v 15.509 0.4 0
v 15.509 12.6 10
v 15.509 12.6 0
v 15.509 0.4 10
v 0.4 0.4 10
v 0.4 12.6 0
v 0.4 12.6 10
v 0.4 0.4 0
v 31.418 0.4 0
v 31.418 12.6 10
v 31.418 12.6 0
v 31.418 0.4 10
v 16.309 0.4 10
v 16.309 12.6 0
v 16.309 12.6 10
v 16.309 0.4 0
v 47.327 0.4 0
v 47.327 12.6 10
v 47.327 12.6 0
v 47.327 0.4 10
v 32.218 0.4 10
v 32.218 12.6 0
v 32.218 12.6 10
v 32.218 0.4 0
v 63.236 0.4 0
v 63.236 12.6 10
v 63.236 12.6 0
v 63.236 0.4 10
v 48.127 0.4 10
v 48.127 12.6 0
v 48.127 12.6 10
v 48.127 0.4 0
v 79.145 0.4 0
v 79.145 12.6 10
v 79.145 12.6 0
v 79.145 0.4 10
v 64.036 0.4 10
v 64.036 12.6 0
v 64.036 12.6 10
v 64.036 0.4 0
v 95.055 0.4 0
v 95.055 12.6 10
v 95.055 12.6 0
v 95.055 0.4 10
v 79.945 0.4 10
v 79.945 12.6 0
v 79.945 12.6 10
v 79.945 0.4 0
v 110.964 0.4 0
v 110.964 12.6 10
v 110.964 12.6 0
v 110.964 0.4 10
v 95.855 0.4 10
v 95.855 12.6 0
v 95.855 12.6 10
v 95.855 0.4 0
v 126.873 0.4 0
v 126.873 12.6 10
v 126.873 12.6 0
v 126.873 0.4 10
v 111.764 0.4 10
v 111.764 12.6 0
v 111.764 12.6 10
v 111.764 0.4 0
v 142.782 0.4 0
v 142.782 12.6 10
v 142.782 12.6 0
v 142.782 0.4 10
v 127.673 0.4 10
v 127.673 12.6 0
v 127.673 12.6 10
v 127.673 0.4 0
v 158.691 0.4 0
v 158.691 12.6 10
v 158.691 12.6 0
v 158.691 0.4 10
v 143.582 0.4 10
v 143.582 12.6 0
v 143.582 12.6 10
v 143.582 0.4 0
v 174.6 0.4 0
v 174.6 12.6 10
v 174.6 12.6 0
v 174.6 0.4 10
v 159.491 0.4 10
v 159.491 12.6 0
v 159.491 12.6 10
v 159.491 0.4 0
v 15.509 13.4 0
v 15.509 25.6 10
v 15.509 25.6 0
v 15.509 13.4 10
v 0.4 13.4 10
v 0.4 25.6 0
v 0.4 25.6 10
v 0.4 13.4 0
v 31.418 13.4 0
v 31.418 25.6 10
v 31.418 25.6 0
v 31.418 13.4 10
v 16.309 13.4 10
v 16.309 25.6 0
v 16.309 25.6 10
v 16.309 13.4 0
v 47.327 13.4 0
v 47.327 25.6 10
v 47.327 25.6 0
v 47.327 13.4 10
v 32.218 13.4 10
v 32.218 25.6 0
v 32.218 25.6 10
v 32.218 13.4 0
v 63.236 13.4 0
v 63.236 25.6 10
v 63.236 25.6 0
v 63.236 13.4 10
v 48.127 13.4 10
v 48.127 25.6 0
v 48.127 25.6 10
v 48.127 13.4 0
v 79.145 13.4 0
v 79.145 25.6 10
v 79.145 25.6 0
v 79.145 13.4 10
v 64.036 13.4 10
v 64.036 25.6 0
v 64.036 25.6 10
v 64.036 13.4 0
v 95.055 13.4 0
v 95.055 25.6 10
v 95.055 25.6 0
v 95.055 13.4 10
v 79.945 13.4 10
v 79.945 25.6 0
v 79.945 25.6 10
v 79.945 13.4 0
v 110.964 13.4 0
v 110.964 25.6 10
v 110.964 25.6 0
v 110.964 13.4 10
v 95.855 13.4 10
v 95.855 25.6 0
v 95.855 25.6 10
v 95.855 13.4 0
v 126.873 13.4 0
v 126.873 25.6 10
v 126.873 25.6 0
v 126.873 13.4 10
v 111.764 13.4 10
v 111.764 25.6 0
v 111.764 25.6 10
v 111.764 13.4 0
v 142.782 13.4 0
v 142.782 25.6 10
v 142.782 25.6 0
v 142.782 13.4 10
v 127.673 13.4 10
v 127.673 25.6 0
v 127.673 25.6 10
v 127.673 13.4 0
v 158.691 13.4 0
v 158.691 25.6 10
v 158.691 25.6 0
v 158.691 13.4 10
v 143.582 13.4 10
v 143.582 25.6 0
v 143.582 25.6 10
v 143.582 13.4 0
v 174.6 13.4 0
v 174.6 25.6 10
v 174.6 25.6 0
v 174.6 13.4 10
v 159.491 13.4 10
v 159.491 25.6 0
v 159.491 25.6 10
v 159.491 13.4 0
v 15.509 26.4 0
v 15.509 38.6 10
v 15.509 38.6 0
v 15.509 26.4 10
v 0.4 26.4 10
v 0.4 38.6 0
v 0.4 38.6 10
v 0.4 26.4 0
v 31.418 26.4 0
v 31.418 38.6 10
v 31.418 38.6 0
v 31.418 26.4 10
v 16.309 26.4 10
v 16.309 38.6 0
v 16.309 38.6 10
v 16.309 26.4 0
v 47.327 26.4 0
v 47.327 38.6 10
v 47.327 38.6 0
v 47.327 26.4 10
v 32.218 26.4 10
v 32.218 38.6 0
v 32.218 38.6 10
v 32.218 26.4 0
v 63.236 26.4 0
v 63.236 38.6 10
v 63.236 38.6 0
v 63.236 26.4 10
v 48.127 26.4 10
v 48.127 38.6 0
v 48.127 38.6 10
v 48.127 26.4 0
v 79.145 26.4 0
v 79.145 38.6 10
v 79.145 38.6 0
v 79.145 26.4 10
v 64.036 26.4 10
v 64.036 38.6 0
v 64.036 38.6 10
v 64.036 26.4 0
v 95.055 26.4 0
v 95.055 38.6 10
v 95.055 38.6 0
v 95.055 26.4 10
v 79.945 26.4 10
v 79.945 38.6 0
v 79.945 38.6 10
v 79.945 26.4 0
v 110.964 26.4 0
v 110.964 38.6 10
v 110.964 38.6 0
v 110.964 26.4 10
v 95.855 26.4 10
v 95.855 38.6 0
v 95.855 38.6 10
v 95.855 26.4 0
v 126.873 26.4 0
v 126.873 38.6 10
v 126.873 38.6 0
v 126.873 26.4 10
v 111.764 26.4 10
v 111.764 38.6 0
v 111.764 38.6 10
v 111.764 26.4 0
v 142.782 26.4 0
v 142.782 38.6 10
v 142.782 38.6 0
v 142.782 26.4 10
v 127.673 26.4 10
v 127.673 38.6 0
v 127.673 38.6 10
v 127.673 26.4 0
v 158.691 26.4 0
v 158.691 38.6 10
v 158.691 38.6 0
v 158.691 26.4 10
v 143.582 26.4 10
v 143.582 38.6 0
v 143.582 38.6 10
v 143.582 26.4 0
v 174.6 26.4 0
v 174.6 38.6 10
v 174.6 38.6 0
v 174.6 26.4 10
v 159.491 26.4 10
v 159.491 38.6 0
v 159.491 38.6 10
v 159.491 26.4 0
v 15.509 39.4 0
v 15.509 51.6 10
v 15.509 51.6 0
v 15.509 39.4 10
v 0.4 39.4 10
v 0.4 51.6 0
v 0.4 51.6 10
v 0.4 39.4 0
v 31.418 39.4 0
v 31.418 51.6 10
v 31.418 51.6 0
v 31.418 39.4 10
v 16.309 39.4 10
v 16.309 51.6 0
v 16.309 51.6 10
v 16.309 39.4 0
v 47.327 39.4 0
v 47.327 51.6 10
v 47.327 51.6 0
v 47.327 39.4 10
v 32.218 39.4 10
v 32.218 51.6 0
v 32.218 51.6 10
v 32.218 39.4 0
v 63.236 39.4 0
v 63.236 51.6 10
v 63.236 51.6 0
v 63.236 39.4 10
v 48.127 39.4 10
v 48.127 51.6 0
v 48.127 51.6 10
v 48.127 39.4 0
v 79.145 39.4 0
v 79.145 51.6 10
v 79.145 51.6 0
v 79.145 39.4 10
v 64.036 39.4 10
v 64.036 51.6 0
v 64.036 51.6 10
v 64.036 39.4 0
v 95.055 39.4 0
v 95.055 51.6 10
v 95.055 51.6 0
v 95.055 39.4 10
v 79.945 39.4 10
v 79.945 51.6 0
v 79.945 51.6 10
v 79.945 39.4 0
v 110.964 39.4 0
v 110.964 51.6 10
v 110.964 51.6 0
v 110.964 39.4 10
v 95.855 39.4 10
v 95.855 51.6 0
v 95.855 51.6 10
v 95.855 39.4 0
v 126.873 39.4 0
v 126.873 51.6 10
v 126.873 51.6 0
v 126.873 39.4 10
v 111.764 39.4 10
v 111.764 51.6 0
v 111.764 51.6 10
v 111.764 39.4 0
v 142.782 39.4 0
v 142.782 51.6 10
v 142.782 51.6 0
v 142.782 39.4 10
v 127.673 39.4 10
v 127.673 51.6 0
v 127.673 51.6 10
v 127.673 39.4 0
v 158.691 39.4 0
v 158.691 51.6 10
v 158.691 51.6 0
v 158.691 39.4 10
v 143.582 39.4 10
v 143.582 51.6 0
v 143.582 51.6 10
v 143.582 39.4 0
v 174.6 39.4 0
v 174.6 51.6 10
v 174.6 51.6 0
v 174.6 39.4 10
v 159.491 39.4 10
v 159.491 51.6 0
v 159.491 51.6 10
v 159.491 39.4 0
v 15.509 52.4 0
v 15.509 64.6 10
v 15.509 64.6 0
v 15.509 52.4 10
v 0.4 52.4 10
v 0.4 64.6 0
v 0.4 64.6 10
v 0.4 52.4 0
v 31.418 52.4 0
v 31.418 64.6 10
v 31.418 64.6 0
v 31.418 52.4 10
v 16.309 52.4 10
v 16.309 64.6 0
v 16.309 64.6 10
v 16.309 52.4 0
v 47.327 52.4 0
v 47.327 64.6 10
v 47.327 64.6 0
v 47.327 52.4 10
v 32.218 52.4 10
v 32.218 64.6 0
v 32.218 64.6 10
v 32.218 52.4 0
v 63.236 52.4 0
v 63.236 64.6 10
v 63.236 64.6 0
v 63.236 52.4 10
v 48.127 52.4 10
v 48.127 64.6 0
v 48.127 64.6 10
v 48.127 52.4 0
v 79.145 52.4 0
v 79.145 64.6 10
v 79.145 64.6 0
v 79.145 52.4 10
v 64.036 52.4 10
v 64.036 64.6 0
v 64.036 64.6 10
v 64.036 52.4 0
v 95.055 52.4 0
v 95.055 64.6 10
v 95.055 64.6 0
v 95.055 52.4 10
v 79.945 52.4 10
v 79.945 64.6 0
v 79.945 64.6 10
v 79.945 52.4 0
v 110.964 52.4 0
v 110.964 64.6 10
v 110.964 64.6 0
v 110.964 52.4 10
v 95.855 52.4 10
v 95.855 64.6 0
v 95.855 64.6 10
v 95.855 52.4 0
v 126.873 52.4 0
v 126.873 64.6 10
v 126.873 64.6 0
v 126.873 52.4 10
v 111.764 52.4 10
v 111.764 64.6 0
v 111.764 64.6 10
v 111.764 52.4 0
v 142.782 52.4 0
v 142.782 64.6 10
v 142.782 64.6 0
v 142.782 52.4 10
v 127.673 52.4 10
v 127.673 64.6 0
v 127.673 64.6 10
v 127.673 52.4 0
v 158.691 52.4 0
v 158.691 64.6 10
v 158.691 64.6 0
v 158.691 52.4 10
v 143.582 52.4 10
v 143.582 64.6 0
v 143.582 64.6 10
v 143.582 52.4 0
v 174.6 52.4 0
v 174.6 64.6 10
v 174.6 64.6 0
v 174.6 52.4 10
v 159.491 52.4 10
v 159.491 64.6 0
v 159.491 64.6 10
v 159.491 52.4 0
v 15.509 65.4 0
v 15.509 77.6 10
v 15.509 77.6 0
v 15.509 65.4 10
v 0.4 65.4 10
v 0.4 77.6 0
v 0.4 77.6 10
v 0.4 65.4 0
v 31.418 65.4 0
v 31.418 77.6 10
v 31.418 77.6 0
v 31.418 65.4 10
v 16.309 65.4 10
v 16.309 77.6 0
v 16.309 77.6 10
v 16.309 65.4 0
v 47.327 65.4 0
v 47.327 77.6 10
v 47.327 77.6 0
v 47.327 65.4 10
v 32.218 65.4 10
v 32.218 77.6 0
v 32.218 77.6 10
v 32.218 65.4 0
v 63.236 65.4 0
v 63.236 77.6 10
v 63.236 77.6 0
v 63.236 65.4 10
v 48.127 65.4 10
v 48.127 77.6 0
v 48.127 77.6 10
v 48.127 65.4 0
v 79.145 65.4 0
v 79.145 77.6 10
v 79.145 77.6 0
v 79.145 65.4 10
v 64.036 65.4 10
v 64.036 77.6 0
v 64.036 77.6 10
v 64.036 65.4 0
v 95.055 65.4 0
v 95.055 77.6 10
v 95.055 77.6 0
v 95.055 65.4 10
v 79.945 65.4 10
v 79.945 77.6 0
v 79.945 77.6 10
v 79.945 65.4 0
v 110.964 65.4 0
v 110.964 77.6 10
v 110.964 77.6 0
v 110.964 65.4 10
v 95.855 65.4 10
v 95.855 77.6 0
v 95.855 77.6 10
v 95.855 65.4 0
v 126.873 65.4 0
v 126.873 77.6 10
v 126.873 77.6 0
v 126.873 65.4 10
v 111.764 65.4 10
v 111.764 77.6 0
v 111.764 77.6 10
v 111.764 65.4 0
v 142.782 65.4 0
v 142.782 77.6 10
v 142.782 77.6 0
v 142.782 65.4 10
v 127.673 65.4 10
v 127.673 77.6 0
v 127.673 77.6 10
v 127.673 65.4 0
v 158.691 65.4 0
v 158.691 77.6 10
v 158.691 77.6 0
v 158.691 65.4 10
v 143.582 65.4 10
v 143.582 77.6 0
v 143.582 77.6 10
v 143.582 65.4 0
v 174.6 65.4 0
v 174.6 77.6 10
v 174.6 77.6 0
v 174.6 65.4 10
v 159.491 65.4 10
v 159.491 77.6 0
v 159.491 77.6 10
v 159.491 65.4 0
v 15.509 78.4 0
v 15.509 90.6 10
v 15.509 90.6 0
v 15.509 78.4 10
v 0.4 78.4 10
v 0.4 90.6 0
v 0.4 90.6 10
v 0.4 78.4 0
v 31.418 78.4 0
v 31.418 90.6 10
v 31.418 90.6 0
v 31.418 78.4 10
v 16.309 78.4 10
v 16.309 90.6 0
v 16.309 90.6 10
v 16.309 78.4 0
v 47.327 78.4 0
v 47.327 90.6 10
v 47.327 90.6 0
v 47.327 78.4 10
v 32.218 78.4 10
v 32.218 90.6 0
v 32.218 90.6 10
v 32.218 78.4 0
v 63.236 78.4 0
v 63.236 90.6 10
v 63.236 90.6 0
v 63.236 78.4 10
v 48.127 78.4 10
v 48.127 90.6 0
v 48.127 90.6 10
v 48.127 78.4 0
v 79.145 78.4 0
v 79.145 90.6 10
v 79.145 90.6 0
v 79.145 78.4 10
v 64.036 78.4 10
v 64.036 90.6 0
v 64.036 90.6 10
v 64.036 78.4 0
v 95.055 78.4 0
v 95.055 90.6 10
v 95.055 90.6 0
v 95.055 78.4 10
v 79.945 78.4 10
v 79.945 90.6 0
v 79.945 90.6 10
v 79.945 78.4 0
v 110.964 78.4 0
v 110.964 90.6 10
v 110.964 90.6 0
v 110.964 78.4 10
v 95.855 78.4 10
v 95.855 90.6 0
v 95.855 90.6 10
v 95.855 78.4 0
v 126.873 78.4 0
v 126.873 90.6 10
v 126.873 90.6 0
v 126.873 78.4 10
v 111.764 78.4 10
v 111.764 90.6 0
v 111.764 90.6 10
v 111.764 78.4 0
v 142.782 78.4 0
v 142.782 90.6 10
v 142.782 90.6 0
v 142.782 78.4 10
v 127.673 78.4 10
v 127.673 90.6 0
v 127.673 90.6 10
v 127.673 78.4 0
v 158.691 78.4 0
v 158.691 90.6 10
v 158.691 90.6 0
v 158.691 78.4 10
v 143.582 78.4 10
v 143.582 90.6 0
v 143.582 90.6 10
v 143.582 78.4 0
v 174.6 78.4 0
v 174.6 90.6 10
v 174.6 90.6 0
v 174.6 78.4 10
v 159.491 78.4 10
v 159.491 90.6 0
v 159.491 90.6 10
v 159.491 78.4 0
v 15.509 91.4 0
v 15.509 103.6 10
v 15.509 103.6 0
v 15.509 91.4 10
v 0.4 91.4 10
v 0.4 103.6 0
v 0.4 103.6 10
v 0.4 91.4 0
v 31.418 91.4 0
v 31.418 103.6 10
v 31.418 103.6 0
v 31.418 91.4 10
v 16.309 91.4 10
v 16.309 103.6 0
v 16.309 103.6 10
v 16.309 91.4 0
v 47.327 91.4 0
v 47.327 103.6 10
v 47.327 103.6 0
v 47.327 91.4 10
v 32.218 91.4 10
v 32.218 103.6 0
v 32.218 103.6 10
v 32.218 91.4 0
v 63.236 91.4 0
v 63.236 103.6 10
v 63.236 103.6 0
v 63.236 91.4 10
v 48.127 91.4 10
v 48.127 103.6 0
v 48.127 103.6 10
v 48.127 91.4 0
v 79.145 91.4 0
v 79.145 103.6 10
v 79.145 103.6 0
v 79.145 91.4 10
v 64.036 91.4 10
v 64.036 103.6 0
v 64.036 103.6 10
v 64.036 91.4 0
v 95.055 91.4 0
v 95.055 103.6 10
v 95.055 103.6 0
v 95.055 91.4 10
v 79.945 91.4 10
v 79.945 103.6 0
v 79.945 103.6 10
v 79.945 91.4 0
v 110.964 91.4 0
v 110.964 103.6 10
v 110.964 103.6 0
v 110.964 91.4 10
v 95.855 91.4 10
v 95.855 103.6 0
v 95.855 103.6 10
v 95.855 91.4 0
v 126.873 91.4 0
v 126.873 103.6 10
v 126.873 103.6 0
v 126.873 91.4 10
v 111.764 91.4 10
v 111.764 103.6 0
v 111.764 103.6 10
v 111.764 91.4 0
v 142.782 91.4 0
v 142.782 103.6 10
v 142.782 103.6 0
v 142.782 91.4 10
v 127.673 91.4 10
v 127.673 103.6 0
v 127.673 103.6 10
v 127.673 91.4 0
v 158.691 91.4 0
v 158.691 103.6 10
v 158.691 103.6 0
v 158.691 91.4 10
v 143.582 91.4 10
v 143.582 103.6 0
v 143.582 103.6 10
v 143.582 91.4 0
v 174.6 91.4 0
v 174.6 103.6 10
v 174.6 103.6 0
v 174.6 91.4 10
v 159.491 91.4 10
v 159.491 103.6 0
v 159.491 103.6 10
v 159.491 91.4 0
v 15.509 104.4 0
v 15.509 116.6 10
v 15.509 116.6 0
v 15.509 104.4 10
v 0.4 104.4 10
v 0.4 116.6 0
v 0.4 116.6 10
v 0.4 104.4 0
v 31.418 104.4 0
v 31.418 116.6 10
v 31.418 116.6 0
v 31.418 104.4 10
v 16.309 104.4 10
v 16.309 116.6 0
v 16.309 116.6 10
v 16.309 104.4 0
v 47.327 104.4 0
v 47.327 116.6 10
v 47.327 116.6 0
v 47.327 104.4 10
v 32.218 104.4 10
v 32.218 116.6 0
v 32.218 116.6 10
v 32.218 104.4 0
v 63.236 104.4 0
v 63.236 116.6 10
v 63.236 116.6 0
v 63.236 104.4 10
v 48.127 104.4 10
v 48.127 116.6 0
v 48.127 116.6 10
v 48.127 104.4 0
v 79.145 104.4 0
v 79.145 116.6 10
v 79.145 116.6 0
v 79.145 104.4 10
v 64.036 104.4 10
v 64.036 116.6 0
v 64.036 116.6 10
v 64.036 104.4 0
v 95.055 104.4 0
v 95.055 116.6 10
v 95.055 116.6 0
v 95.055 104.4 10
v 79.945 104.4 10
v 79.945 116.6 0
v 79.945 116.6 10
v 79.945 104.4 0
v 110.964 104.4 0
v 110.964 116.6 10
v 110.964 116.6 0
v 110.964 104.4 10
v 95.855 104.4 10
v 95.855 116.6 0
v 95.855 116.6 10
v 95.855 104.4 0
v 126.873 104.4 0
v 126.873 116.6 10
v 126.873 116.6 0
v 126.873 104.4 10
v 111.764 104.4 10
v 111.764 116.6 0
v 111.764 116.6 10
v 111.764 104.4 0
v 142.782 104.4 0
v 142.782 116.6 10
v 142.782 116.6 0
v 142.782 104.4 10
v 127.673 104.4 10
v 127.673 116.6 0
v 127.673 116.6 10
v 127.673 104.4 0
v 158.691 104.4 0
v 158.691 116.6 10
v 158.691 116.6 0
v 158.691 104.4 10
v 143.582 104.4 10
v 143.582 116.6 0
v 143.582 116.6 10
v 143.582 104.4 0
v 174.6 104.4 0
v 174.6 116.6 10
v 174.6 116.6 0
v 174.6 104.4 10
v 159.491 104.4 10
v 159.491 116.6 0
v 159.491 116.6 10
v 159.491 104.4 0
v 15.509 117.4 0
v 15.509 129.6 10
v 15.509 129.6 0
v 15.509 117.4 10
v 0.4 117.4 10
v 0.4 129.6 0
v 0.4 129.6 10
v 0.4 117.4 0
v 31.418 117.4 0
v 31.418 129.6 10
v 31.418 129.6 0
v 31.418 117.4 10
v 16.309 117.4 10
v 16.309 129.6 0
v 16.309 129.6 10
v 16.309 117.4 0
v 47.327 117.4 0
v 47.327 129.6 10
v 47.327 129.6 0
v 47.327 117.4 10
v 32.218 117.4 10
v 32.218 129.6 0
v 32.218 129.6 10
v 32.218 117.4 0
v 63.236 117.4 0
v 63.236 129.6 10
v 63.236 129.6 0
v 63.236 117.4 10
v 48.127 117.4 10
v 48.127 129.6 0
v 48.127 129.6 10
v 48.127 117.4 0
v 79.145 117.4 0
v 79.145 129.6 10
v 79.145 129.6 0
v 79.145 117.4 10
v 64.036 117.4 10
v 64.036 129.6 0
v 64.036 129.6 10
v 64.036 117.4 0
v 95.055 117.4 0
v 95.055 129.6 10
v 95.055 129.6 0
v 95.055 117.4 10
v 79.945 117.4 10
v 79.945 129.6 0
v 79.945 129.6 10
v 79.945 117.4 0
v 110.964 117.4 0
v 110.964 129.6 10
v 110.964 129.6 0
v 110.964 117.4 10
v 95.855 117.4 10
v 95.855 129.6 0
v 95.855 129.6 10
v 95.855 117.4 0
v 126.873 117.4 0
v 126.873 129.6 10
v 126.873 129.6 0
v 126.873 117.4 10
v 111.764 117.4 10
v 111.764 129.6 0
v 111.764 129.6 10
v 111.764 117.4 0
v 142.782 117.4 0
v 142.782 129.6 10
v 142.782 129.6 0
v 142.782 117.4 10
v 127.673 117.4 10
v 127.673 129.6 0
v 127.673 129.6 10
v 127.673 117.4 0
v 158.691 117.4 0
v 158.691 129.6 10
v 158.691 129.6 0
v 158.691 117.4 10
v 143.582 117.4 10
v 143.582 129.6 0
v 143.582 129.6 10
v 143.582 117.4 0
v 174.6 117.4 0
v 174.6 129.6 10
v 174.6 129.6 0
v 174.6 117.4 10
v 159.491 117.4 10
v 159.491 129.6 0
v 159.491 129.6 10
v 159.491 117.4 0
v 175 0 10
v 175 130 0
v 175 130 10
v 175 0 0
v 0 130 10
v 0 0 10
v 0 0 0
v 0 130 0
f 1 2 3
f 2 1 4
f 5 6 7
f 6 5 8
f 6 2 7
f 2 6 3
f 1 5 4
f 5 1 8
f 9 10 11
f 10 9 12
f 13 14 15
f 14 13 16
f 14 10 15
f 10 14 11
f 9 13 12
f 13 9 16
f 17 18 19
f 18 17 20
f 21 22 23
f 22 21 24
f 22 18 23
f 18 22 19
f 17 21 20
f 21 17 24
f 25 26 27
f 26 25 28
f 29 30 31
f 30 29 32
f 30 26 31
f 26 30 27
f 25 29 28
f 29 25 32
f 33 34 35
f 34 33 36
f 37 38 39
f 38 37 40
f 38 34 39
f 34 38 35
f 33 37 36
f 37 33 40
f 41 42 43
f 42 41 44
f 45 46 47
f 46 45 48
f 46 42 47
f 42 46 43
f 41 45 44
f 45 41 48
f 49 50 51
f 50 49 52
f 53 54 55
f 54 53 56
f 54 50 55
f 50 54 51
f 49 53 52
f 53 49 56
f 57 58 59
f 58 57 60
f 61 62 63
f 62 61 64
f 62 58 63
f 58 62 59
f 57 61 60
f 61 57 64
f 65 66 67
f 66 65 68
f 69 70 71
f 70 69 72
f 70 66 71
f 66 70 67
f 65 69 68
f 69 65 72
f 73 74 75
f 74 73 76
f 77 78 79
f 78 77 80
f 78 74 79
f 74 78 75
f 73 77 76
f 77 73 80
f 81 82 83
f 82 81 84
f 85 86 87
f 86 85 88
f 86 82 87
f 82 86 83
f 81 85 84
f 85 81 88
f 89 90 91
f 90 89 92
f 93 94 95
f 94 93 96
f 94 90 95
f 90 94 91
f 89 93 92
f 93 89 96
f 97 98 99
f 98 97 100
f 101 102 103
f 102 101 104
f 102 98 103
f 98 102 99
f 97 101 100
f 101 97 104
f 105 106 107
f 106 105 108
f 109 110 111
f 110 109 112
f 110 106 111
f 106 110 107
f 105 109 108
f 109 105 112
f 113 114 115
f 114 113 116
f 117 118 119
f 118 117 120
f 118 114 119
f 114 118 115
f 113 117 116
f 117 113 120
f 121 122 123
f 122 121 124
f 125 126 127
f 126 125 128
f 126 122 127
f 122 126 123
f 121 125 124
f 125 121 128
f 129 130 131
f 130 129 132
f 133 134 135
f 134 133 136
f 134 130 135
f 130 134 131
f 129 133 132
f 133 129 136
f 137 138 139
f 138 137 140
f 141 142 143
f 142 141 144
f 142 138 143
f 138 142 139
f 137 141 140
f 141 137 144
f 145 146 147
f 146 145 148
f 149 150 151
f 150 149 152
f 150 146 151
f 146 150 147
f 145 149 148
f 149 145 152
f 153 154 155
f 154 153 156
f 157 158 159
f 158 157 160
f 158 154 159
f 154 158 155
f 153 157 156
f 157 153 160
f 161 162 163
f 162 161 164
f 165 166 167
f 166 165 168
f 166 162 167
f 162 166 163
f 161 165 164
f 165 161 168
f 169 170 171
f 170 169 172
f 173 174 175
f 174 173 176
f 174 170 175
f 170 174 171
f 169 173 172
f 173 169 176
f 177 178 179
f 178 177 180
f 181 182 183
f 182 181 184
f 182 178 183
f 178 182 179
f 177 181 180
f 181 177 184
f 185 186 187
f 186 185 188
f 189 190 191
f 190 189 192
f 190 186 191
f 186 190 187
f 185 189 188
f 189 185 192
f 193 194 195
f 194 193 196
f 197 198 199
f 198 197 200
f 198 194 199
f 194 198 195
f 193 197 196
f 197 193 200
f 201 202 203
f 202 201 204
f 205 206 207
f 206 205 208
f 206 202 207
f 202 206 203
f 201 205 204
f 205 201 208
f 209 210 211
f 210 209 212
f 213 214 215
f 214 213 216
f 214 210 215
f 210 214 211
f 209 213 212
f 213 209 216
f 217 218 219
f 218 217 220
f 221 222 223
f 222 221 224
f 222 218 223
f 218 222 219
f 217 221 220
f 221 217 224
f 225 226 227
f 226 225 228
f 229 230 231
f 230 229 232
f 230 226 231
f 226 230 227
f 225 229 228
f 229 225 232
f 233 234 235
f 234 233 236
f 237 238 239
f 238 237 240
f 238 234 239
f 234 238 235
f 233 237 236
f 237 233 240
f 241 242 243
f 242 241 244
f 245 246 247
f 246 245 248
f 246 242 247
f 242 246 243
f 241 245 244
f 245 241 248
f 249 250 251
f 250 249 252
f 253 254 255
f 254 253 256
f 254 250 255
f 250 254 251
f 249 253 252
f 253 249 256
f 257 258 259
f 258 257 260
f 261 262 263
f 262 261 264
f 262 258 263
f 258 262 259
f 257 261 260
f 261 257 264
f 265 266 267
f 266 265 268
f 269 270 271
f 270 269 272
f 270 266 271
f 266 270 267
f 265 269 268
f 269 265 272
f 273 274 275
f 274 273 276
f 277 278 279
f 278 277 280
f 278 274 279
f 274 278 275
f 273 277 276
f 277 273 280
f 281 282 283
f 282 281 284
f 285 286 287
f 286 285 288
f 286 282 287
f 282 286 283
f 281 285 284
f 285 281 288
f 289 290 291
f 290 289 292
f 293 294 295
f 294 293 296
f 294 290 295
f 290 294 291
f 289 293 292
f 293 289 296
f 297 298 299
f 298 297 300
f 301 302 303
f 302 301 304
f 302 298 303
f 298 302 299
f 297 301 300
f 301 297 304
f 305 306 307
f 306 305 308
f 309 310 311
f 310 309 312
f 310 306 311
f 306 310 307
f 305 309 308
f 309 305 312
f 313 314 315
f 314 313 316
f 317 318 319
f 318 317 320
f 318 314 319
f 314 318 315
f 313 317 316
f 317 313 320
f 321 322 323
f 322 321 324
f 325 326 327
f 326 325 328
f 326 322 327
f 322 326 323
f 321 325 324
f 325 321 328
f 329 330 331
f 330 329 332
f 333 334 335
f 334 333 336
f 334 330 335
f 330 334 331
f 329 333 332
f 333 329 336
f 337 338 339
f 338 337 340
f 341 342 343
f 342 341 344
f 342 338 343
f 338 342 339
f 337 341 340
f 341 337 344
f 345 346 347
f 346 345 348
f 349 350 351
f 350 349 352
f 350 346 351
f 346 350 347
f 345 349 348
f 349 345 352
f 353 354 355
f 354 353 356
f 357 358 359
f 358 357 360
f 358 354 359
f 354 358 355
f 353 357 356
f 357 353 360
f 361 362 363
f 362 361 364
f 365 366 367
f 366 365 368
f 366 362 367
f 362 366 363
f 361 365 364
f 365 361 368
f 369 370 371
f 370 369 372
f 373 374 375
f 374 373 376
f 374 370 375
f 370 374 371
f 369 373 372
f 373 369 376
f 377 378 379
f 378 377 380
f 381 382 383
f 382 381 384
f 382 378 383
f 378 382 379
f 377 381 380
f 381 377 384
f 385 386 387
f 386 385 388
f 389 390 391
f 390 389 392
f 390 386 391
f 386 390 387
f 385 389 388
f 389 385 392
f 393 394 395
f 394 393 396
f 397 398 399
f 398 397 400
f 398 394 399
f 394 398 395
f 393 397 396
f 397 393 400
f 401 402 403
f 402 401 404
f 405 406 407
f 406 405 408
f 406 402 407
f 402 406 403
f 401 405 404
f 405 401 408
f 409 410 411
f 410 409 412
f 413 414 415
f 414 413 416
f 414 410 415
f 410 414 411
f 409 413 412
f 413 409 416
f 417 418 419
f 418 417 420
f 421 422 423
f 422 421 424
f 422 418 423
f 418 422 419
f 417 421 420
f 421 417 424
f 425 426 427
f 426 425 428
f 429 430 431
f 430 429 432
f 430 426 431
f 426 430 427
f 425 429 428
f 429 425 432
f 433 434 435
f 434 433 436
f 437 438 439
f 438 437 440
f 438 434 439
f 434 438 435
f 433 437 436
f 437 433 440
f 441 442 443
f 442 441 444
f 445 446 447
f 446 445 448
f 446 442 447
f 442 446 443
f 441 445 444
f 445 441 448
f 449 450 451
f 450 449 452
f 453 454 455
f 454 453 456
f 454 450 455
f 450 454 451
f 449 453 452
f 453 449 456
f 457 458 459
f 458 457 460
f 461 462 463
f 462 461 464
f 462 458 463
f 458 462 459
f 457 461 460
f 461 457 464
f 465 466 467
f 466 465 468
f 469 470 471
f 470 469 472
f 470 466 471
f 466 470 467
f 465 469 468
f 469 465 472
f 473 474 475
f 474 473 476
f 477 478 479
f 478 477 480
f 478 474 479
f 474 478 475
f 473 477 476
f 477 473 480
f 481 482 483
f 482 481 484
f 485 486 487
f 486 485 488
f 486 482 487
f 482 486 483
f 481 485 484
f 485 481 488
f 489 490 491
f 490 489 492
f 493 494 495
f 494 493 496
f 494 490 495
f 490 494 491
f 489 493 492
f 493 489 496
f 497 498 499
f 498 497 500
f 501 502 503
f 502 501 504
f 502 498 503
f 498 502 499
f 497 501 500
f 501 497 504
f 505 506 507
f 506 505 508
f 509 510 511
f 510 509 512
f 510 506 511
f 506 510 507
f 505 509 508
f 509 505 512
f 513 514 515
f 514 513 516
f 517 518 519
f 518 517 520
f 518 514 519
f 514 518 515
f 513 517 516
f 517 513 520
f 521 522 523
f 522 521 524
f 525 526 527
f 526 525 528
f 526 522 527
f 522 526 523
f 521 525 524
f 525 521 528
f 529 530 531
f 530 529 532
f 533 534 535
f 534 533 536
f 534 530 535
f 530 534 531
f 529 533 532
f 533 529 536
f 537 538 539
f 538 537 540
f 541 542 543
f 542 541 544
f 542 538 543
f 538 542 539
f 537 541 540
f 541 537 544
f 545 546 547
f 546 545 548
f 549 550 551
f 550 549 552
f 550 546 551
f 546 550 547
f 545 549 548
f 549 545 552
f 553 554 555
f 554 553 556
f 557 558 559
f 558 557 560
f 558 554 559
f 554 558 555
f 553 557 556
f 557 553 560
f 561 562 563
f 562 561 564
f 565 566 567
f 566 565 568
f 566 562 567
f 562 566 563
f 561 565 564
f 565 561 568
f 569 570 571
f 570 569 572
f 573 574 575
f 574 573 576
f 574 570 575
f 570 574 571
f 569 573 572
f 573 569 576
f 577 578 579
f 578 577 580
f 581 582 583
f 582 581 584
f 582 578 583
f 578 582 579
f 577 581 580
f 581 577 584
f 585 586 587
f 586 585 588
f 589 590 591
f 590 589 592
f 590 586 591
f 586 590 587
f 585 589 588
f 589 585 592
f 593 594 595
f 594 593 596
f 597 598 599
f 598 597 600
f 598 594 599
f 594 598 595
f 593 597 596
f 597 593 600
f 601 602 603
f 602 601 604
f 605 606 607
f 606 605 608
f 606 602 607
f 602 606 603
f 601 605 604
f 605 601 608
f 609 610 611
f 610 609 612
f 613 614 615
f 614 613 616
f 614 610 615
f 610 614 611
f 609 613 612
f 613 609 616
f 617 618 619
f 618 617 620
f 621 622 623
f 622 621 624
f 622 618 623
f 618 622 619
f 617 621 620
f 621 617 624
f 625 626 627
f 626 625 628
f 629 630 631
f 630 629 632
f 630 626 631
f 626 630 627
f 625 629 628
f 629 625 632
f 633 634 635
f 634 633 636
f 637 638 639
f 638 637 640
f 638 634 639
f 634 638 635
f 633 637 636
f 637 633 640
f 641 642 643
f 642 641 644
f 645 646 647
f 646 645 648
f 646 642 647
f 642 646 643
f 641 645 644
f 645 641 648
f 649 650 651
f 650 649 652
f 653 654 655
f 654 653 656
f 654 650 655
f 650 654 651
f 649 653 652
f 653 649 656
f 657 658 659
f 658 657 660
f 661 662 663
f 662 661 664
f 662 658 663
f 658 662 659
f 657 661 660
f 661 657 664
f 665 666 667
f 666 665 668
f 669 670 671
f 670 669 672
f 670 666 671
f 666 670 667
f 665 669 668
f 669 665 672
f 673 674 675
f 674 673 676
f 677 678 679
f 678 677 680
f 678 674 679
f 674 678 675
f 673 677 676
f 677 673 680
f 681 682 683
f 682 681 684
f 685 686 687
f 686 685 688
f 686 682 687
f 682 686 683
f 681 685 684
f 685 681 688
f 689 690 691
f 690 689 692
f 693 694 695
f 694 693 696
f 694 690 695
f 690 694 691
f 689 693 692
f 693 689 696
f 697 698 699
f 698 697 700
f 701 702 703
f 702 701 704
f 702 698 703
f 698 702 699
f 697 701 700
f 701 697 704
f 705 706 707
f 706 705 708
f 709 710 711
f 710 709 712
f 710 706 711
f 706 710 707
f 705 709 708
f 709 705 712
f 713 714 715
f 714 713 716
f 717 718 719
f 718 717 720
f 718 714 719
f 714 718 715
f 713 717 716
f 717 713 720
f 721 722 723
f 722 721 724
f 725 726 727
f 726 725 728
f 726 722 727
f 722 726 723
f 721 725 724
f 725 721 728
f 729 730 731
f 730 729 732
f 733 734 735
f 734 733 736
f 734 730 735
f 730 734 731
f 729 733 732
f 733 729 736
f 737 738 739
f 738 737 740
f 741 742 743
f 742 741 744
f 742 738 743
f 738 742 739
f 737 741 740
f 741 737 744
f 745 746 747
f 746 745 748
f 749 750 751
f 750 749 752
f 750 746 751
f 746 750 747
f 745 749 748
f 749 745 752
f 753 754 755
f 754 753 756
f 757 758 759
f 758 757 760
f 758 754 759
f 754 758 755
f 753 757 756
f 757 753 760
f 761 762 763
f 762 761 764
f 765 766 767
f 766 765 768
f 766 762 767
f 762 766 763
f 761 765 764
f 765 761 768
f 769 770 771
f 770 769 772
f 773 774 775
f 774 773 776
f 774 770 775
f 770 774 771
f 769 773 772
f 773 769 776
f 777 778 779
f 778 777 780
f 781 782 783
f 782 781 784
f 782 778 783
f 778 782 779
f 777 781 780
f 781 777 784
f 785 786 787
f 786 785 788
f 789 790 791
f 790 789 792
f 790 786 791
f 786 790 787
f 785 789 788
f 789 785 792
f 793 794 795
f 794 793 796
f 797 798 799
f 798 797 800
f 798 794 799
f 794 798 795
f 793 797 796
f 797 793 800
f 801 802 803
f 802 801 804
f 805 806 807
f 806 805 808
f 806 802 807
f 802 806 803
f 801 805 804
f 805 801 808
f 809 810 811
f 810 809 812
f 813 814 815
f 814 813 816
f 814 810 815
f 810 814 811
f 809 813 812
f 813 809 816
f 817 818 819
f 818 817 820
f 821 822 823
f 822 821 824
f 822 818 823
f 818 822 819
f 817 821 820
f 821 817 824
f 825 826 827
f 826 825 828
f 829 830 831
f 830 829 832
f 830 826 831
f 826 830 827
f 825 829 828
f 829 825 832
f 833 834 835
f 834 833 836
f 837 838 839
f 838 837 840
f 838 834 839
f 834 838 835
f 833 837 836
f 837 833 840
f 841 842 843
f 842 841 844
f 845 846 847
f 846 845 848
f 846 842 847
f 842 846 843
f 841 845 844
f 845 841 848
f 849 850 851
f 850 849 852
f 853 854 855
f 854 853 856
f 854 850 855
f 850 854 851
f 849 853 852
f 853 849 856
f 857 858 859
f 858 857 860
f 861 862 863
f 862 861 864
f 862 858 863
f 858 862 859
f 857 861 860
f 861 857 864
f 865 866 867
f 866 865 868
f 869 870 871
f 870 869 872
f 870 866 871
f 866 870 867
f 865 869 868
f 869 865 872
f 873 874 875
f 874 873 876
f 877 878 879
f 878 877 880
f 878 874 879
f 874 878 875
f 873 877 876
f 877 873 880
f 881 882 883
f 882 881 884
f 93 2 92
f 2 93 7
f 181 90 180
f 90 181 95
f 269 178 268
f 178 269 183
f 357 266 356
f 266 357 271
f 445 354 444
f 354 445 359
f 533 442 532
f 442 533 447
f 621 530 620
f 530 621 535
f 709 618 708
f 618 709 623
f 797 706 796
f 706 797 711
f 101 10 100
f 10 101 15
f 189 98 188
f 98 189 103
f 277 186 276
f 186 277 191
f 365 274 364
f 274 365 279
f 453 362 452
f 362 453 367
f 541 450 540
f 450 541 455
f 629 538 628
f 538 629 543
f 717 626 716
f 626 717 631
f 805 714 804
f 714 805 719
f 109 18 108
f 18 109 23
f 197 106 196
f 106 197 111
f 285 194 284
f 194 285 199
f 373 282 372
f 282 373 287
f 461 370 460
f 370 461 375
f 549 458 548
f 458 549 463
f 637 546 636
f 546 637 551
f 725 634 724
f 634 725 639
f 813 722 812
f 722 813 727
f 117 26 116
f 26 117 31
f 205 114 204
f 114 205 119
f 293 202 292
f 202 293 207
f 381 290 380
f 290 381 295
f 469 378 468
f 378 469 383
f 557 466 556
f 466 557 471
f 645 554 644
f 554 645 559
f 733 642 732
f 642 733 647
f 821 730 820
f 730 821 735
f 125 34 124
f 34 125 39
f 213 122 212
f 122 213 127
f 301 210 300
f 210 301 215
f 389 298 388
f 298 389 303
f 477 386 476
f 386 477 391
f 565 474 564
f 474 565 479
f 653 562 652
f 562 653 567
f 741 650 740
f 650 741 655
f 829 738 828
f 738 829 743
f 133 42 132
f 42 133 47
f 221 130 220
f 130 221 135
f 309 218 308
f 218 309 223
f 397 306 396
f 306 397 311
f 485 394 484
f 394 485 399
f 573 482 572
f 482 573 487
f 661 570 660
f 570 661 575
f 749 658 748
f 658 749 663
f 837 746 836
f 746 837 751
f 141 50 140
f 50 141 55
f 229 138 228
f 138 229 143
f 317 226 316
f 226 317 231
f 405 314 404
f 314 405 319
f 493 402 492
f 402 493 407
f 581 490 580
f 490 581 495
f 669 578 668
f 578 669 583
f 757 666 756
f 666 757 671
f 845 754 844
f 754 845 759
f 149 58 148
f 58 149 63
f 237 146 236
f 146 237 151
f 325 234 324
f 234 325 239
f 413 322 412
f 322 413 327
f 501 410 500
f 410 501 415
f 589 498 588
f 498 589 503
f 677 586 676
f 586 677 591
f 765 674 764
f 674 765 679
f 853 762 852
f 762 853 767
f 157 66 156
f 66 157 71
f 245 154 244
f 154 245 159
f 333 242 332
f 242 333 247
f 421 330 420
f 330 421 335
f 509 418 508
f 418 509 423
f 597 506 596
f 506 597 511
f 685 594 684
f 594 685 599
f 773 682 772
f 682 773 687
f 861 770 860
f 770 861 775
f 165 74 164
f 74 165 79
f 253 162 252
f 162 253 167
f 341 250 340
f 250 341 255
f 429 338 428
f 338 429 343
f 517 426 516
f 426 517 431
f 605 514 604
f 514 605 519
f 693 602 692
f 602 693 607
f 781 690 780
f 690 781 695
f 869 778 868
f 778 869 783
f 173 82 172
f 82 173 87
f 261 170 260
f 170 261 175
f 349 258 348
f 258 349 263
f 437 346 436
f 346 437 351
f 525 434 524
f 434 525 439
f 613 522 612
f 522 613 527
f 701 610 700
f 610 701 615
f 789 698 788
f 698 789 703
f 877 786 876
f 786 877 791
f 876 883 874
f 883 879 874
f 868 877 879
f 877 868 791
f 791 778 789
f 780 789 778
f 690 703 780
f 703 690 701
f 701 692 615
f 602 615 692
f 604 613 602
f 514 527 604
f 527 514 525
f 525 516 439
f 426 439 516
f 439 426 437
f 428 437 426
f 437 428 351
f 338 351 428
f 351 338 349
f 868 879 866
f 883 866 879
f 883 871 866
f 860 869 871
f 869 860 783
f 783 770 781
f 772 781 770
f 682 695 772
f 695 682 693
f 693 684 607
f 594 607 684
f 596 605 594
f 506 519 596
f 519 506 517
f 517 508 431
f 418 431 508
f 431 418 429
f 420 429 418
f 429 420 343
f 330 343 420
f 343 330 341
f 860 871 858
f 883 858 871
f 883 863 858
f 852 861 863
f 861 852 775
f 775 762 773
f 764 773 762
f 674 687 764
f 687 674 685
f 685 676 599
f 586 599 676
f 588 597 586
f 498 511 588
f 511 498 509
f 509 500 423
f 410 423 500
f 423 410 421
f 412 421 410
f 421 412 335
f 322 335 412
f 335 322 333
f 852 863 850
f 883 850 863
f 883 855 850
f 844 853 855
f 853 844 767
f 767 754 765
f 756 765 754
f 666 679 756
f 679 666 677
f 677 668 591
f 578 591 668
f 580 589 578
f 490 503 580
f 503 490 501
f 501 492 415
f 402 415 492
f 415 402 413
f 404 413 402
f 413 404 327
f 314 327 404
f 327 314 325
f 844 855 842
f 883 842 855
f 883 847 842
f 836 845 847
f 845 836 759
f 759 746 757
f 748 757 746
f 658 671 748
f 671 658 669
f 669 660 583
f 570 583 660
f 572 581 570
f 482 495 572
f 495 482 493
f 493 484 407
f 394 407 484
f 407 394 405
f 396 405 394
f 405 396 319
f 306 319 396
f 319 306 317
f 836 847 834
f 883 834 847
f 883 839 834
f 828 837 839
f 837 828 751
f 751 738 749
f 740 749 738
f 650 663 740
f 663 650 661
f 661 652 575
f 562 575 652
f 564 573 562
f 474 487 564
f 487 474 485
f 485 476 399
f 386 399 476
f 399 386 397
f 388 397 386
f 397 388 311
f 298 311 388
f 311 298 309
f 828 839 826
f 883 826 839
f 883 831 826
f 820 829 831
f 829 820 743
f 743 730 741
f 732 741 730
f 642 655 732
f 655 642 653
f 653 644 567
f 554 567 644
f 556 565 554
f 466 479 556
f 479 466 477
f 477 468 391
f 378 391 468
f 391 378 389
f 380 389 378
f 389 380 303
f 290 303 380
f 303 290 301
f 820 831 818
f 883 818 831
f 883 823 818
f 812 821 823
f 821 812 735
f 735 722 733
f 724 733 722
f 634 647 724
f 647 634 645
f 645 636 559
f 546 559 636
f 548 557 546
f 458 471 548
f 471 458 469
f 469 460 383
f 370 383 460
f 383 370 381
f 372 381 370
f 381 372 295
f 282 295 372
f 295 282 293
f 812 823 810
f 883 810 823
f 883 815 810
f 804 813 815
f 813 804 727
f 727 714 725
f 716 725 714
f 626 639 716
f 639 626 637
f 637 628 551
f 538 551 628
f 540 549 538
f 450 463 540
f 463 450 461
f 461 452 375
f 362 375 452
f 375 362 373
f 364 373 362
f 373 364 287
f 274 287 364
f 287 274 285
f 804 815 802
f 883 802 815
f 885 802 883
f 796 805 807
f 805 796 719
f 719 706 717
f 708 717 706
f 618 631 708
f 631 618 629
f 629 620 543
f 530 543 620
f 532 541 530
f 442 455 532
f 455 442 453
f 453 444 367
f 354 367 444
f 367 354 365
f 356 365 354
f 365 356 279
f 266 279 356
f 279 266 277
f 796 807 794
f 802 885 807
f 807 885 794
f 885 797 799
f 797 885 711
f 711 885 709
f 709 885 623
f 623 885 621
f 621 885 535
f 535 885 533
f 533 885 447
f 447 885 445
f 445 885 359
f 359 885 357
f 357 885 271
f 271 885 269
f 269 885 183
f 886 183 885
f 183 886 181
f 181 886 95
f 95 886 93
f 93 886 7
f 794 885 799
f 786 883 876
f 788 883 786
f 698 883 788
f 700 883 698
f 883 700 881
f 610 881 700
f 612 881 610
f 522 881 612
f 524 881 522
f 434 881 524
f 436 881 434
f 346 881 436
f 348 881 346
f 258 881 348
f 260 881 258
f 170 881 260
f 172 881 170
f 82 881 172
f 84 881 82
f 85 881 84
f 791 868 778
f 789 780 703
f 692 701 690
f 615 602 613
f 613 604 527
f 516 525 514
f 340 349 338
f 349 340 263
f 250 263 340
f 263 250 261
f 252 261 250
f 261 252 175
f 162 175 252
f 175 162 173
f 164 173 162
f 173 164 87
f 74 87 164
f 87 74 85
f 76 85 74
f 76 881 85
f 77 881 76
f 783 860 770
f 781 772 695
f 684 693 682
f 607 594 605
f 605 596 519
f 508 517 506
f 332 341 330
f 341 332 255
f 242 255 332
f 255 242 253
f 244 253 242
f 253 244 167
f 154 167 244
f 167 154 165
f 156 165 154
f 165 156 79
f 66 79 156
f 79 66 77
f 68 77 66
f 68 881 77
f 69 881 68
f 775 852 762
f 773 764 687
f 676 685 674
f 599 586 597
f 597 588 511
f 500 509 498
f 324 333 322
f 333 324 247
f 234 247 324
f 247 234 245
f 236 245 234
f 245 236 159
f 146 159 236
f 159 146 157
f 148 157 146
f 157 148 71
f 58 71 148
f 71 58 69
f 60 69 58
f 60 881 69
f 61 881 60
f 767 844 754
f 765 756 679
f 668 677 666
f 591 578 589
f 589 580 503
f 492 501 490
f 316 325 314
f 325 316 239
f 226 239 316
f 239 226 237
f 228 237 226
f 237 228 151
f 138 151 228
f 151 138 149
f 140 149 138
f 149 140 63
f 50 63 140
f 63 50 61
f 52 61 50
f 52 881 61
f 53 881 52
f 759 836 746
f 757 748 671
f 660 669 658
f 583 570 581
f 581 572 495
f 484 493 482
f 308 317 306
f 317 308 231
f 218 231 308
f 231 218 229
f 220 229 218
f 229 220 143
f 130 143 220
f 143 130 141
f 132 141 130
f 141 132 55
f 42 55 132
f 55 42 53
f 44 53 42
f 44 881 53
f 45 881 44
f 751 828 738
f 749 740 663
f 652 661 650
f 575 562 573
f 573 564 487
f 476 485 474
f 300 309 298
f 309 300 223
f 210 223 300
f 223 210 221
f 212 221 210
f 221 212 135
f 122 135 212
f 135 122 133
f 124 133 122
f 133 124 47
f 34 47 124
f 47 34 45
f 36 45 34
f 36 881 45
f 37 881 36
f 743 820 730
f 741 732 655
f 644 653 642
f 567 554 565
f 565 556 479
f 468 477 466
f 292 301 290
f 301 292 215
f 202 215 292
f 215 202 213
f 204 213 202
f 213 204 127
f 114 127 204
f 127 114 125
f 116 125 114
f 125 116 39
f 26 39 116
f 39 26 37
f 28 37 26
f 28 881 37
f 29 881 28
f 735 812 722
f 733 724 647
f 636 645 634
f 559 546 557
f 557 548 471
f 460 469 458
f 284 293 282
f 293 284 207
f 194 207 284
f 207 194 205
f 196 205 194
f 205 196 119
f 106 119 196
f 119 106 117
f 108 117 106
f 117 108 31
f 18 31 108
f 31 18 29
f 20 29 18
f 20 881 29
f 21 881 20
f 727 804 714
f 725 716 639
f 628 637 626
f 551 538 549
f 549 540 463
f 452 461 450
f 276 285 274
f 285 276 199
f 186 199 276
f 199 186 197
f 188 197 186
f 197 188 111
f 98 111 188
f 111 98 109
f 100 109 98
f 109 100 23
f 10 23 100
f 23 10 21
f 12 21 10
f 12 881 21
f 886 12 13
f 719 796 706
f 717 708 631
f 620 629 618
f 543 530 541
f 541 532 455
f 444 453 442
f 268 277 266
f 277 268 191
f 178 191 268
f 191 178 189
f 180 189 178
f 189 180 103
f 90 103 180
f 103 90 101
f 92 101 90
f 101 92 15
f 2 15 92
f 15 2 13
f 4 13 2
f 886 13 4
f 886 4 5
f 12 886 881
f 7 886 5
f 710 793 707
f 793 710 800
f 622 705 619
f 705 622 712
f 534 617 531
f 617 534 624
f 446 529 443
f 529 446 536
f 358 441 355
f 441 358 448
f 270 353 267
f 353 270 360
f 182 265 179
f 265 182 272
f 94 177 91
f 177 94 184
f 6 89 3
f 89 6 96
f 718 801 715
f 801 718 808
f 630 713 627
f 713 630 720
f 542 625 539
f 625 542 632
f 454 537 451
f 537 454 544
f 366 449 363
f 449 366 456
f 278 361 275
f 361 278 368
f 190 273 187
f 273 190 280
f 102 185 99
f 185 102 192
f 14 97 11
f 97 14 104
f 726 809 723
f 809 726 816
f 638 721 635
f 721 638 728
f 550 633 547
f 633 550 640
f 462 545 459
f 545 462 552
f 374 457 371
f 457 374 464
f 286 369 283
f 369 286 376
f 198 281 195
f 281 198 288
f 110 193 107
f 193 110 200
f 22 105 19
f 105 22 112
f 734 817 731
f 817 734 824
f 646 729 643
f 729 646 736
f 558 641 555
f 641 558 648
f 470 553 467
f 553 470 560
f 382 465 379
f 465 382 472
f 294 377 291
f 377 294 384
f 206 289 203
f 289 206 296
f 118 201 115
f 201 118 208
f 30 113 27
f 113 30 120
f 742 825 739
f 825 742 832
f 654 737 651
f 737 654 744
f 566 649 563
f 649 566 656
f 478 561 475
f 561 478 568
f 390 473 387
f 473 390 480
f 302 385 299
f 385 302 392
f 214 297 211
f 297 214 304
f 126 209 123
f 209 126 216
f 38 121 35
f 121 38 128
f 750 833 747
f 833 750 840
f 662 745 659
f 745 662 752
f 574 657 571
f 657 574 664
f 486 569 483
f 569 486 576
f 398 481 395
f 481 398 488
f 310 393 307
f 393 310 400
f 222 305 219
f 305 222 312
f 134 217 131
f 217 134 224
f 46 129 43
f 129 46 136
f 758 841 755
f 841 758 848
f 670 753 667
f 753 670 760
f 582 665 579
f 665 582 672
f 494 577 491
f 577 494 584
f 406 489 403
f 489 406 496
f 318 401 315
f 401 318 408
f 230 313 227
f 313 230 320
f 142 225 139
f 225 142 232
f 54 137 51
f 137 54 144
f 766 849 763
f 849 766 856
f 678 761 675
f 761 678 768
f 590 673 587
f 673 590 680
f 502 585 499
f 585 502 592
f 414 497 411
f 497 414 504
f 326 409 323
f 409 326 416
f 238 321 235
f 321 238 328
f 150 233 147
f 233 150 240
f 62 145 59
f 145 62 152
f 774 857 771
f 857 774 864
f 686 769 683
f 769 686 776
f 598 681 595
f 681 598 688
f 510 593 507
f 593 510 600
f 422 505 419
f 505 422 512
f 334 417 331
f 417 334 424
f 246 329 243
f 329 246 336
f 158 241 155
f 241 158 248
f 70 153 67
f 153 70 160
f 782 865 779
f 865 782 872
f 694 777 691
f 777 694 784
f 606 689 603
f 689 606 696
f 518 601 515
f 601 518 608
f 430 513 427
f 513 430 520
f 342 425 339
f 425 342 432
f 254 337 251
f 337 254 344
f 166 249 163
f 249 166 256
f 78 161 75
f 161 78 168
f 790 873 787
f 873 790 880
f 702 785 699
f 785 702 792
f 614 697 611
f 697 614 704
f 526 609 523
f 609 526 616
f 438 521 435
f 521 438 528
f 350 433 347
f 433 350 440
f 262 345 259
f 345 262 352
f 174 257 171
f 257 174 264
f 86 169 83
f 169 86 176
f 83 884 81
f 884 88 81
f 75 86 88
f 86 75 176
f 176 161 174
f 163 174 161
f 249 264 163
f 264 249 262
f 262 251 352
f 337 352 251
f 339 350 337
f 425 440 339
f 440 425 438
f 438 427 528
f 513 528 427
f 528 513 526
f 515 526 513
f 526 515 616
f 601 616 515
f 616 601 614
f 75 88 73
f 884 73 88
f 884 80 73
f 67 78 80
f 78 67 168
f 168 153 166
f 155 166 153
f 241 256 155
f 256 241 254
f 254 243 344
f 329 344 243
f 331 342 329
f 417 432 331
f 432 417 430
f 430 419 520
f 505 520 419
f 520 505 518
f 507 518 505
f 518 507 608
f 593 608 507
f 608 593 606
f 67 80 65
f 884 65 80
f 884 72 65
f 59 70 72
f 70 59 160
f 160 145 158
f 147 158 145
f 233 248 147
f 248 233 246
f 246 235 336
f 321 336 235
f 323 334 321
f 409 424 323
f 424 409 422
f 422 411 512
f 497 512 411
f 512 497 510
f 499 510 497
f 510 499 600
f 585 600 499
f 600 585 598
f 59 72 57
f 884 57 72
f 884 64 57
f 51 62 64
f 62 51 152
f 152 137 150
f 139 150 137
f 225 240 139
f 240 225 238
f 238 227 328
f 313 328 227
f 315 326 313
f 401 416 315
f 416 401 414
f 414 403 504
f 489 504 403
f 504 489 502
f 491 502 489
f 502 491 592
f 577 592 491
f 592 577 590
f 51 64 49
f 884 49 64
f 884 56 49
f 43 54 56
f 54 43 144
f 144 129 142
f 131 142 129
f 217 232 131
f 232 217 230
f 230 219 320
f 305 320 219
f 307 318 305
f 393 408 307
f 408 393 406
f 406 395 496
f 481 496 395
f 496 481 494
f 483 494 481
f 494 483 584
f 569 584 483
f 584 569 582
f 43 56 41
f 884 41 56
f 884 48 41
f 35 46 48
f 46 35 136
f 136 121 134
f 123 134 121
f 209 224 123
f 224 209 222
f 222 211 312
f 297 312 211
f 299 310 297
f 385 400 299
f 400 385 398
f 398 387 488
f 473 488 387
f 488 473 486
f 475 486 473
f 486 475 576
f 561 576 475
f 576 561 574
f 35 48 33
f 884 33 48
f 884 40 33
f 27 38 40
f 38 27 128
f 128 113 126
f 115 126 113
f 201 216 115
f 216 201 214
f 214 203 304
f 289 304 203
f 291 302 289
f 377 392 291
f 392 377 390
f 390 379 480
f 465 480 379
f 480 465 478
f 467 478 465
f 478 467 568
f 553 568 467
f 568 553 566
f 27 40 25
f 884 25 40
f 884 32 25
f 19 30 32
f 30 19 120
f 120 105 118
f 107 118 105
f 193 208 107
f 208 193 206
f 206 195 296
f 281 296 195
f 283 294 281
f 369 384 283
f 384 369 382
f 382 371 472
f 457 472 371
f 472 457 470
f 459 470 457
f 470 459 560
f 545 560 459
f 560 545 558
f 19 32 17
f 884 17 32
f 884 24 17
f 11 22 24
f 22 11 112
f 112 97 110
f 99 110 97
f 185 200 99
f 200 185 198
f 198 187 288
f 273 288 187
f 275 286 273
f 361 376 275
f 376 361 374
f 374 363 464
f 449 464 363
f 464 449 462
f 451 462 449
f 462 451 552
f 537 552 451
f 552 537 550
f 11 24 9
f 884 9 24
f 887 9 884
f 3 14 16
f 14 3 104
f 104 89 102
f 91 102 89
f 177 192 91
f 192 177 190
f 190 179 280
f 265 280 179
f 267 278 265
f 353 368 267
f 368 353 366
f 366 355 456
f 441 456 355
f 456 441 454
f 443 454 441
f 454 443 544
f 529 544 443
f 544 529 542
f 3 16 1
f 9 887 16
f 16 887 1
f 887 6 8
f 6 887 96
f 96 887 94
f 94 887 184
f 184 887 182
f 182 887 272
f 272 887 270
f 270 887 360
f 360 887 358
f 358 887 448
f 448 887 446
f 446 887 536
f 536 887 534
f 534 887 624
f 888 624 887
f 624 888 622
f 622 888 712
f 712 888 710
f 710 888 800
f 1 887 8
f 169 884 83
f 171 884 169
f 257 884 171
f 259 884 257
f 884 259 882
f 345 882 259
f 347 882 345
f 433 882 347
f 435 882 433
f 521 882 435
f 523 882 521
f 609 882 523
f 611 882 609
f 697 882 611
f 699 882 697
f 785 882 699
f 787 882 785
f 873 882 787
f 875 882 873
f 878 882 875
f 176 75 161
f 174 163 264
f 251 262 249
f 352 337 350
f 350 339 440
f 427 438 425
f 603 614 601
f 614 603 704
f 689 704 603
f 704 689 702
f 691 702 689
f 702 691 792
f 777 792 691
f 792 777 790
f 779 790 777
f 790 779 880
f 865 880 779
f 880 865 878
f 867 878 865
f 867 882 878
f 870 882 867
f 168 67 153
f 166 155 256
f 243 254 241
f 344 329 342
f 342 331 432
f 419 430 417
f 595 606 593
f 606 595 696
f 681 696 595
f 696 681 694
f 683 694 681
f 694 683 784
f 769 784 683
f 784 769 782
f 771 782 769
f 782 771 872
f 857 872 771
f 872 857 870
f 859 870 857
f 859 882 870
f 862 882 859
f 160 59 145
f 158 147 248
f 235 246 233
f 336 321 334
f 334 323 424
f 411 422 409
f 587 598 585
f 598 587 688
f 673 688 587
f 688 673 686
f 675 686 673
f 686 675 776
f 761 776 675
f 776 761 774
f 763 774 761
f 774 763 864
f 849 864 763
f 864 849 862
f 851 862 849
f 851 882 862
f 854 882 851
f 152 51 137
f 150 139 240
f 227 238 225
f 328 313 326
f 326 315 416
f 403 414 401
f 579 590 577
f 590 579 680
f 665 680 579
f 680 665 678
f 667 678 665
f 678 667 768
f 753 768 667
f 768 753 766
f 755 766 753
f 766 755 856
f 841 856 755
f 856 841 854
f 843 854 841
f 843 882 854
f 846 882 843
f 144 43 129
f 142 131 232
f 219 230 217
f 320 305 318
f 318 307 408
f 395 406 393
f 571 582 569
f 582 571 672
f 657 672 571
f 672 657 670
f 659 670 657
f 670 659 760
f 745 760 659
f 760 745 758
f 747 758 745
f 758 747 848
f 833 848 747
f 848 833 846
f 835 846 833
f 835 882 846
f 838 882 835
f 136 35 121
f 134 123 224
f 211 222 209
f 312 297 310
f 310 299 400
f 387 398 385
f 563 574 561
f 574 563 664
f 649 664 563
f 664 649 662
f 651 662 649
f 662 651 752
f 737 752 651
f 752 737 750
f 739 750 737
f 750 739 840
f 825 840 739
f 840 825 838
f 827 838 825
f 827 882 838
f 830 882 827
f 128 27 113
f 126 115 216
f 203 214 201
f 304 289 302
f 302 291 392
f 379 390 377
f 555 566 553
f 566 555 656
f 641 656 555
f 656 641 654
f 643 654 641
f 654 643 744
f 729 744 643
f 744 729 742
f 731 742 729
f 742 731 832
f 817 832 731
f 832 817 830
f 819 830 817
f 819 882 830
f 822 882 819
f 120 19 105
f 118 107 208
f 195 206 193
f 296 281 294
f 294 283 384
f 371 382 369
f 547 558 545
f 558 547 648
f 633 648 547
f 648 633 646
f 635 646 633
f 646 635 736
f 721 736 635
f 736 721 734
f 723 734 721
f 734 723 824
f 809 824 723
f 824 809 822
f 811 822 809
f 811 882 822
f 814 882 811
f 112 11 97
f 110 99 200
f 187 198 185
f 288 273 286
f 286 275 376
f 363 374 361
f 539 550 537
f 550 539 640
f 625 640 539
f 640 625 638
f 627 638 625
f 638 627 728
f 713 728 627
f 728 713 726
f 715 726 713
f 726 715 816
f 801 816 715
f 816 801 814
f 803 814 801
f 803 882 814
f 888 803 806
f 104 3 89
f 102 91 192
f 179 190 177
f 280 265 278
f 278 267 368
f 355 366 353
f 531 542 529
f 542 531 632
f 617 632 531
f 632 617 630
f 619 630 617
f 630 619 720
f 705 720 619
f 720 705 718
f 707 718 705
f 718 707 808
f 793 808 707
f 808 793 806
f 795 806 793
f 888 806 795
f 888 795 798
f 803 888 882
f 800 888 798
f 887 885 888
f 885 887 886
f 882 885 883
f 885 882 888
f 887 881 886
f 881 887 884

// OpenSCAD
// ==========================================
// Word Clock Light Diverter (Baffle) Generator
// ==========================================

// --- 1. DIMENSIONS (Measure your Stencil) ---
// Total width of the letter area (mm)
total_width = 175; 

// Total height of the letter area (mm)
total_height = 130;

// How thick should the diverter be? (Distance from LED to Faceplate)
diverter_depth = 10;

// --- 2. GRID LAYOUT (Count your Stencil) ---
// How many letters per row?
columns = 11;

// How many rows of text?
rows = 10;

// --- 3. WALL SETTINGS ---
// Thickness of the grid walls (mm)
// 0.8mm is usually good for 3D printing (2 perimeters)
wall_thickness = 0.8;

// --- 4. RENDER SETTINGS ---
// Add a backing plate? (true/false) - Useful for mounting LEDs
add_backing = false;
backing_thickness = 1.0;


// ==========================================
// MAIN RENDER LOGIC
// ==========================================

module light_diverter() {
    
    // Calculate individual cell size
    cell_w = total_width / columns;
    cell_h = total_height / rows;
    
    // Adjust inner hole size to account for wall thickness
    hole_w = cell_w - wall_thickness;
    hole_h = cell_h - wall_thickness;

    union() {
        difference() {
            // The main solid block
            cube([total_width, total_height, diverter_depth]);

            // Subtract the grid holes
            for (r = [0 : rows - 1]) {
                for (c = [0 : columns - 1]) {
                    translate([
                        (c * cell_w) + (wall_thickness / 2), 
                        (r * cell_h) + (wall_thickness / 2), 
                        -1 // Start slightly below to ensure clean cut
                    ])
                    cube([hole_w, hole_h, diverter_depth + 2]);
                }
            }
        }

        // Optional Backing Plate
        if (add_backing) {
            translate([0, 0, -backing_thickness])
            cube([total_width, total_height, backing_thickness]);
        }
    }
}

// Render the part
light_diverter();

// ==========================================
// INSTRUCTIONS
// ==========================================
// 1. Open your STL file in a viewer (like Cura or Meshmixer).
// 2. Measure the X and Y distance of the text block. Enter into total_width/height.
// 3. Count how many letters are in a row. Enter into 'columns'.
// 4. Count how many rows of text there are. Enter into 'rows'.
// 5. Press F5 to preview, F6 to render, then export as STL.
